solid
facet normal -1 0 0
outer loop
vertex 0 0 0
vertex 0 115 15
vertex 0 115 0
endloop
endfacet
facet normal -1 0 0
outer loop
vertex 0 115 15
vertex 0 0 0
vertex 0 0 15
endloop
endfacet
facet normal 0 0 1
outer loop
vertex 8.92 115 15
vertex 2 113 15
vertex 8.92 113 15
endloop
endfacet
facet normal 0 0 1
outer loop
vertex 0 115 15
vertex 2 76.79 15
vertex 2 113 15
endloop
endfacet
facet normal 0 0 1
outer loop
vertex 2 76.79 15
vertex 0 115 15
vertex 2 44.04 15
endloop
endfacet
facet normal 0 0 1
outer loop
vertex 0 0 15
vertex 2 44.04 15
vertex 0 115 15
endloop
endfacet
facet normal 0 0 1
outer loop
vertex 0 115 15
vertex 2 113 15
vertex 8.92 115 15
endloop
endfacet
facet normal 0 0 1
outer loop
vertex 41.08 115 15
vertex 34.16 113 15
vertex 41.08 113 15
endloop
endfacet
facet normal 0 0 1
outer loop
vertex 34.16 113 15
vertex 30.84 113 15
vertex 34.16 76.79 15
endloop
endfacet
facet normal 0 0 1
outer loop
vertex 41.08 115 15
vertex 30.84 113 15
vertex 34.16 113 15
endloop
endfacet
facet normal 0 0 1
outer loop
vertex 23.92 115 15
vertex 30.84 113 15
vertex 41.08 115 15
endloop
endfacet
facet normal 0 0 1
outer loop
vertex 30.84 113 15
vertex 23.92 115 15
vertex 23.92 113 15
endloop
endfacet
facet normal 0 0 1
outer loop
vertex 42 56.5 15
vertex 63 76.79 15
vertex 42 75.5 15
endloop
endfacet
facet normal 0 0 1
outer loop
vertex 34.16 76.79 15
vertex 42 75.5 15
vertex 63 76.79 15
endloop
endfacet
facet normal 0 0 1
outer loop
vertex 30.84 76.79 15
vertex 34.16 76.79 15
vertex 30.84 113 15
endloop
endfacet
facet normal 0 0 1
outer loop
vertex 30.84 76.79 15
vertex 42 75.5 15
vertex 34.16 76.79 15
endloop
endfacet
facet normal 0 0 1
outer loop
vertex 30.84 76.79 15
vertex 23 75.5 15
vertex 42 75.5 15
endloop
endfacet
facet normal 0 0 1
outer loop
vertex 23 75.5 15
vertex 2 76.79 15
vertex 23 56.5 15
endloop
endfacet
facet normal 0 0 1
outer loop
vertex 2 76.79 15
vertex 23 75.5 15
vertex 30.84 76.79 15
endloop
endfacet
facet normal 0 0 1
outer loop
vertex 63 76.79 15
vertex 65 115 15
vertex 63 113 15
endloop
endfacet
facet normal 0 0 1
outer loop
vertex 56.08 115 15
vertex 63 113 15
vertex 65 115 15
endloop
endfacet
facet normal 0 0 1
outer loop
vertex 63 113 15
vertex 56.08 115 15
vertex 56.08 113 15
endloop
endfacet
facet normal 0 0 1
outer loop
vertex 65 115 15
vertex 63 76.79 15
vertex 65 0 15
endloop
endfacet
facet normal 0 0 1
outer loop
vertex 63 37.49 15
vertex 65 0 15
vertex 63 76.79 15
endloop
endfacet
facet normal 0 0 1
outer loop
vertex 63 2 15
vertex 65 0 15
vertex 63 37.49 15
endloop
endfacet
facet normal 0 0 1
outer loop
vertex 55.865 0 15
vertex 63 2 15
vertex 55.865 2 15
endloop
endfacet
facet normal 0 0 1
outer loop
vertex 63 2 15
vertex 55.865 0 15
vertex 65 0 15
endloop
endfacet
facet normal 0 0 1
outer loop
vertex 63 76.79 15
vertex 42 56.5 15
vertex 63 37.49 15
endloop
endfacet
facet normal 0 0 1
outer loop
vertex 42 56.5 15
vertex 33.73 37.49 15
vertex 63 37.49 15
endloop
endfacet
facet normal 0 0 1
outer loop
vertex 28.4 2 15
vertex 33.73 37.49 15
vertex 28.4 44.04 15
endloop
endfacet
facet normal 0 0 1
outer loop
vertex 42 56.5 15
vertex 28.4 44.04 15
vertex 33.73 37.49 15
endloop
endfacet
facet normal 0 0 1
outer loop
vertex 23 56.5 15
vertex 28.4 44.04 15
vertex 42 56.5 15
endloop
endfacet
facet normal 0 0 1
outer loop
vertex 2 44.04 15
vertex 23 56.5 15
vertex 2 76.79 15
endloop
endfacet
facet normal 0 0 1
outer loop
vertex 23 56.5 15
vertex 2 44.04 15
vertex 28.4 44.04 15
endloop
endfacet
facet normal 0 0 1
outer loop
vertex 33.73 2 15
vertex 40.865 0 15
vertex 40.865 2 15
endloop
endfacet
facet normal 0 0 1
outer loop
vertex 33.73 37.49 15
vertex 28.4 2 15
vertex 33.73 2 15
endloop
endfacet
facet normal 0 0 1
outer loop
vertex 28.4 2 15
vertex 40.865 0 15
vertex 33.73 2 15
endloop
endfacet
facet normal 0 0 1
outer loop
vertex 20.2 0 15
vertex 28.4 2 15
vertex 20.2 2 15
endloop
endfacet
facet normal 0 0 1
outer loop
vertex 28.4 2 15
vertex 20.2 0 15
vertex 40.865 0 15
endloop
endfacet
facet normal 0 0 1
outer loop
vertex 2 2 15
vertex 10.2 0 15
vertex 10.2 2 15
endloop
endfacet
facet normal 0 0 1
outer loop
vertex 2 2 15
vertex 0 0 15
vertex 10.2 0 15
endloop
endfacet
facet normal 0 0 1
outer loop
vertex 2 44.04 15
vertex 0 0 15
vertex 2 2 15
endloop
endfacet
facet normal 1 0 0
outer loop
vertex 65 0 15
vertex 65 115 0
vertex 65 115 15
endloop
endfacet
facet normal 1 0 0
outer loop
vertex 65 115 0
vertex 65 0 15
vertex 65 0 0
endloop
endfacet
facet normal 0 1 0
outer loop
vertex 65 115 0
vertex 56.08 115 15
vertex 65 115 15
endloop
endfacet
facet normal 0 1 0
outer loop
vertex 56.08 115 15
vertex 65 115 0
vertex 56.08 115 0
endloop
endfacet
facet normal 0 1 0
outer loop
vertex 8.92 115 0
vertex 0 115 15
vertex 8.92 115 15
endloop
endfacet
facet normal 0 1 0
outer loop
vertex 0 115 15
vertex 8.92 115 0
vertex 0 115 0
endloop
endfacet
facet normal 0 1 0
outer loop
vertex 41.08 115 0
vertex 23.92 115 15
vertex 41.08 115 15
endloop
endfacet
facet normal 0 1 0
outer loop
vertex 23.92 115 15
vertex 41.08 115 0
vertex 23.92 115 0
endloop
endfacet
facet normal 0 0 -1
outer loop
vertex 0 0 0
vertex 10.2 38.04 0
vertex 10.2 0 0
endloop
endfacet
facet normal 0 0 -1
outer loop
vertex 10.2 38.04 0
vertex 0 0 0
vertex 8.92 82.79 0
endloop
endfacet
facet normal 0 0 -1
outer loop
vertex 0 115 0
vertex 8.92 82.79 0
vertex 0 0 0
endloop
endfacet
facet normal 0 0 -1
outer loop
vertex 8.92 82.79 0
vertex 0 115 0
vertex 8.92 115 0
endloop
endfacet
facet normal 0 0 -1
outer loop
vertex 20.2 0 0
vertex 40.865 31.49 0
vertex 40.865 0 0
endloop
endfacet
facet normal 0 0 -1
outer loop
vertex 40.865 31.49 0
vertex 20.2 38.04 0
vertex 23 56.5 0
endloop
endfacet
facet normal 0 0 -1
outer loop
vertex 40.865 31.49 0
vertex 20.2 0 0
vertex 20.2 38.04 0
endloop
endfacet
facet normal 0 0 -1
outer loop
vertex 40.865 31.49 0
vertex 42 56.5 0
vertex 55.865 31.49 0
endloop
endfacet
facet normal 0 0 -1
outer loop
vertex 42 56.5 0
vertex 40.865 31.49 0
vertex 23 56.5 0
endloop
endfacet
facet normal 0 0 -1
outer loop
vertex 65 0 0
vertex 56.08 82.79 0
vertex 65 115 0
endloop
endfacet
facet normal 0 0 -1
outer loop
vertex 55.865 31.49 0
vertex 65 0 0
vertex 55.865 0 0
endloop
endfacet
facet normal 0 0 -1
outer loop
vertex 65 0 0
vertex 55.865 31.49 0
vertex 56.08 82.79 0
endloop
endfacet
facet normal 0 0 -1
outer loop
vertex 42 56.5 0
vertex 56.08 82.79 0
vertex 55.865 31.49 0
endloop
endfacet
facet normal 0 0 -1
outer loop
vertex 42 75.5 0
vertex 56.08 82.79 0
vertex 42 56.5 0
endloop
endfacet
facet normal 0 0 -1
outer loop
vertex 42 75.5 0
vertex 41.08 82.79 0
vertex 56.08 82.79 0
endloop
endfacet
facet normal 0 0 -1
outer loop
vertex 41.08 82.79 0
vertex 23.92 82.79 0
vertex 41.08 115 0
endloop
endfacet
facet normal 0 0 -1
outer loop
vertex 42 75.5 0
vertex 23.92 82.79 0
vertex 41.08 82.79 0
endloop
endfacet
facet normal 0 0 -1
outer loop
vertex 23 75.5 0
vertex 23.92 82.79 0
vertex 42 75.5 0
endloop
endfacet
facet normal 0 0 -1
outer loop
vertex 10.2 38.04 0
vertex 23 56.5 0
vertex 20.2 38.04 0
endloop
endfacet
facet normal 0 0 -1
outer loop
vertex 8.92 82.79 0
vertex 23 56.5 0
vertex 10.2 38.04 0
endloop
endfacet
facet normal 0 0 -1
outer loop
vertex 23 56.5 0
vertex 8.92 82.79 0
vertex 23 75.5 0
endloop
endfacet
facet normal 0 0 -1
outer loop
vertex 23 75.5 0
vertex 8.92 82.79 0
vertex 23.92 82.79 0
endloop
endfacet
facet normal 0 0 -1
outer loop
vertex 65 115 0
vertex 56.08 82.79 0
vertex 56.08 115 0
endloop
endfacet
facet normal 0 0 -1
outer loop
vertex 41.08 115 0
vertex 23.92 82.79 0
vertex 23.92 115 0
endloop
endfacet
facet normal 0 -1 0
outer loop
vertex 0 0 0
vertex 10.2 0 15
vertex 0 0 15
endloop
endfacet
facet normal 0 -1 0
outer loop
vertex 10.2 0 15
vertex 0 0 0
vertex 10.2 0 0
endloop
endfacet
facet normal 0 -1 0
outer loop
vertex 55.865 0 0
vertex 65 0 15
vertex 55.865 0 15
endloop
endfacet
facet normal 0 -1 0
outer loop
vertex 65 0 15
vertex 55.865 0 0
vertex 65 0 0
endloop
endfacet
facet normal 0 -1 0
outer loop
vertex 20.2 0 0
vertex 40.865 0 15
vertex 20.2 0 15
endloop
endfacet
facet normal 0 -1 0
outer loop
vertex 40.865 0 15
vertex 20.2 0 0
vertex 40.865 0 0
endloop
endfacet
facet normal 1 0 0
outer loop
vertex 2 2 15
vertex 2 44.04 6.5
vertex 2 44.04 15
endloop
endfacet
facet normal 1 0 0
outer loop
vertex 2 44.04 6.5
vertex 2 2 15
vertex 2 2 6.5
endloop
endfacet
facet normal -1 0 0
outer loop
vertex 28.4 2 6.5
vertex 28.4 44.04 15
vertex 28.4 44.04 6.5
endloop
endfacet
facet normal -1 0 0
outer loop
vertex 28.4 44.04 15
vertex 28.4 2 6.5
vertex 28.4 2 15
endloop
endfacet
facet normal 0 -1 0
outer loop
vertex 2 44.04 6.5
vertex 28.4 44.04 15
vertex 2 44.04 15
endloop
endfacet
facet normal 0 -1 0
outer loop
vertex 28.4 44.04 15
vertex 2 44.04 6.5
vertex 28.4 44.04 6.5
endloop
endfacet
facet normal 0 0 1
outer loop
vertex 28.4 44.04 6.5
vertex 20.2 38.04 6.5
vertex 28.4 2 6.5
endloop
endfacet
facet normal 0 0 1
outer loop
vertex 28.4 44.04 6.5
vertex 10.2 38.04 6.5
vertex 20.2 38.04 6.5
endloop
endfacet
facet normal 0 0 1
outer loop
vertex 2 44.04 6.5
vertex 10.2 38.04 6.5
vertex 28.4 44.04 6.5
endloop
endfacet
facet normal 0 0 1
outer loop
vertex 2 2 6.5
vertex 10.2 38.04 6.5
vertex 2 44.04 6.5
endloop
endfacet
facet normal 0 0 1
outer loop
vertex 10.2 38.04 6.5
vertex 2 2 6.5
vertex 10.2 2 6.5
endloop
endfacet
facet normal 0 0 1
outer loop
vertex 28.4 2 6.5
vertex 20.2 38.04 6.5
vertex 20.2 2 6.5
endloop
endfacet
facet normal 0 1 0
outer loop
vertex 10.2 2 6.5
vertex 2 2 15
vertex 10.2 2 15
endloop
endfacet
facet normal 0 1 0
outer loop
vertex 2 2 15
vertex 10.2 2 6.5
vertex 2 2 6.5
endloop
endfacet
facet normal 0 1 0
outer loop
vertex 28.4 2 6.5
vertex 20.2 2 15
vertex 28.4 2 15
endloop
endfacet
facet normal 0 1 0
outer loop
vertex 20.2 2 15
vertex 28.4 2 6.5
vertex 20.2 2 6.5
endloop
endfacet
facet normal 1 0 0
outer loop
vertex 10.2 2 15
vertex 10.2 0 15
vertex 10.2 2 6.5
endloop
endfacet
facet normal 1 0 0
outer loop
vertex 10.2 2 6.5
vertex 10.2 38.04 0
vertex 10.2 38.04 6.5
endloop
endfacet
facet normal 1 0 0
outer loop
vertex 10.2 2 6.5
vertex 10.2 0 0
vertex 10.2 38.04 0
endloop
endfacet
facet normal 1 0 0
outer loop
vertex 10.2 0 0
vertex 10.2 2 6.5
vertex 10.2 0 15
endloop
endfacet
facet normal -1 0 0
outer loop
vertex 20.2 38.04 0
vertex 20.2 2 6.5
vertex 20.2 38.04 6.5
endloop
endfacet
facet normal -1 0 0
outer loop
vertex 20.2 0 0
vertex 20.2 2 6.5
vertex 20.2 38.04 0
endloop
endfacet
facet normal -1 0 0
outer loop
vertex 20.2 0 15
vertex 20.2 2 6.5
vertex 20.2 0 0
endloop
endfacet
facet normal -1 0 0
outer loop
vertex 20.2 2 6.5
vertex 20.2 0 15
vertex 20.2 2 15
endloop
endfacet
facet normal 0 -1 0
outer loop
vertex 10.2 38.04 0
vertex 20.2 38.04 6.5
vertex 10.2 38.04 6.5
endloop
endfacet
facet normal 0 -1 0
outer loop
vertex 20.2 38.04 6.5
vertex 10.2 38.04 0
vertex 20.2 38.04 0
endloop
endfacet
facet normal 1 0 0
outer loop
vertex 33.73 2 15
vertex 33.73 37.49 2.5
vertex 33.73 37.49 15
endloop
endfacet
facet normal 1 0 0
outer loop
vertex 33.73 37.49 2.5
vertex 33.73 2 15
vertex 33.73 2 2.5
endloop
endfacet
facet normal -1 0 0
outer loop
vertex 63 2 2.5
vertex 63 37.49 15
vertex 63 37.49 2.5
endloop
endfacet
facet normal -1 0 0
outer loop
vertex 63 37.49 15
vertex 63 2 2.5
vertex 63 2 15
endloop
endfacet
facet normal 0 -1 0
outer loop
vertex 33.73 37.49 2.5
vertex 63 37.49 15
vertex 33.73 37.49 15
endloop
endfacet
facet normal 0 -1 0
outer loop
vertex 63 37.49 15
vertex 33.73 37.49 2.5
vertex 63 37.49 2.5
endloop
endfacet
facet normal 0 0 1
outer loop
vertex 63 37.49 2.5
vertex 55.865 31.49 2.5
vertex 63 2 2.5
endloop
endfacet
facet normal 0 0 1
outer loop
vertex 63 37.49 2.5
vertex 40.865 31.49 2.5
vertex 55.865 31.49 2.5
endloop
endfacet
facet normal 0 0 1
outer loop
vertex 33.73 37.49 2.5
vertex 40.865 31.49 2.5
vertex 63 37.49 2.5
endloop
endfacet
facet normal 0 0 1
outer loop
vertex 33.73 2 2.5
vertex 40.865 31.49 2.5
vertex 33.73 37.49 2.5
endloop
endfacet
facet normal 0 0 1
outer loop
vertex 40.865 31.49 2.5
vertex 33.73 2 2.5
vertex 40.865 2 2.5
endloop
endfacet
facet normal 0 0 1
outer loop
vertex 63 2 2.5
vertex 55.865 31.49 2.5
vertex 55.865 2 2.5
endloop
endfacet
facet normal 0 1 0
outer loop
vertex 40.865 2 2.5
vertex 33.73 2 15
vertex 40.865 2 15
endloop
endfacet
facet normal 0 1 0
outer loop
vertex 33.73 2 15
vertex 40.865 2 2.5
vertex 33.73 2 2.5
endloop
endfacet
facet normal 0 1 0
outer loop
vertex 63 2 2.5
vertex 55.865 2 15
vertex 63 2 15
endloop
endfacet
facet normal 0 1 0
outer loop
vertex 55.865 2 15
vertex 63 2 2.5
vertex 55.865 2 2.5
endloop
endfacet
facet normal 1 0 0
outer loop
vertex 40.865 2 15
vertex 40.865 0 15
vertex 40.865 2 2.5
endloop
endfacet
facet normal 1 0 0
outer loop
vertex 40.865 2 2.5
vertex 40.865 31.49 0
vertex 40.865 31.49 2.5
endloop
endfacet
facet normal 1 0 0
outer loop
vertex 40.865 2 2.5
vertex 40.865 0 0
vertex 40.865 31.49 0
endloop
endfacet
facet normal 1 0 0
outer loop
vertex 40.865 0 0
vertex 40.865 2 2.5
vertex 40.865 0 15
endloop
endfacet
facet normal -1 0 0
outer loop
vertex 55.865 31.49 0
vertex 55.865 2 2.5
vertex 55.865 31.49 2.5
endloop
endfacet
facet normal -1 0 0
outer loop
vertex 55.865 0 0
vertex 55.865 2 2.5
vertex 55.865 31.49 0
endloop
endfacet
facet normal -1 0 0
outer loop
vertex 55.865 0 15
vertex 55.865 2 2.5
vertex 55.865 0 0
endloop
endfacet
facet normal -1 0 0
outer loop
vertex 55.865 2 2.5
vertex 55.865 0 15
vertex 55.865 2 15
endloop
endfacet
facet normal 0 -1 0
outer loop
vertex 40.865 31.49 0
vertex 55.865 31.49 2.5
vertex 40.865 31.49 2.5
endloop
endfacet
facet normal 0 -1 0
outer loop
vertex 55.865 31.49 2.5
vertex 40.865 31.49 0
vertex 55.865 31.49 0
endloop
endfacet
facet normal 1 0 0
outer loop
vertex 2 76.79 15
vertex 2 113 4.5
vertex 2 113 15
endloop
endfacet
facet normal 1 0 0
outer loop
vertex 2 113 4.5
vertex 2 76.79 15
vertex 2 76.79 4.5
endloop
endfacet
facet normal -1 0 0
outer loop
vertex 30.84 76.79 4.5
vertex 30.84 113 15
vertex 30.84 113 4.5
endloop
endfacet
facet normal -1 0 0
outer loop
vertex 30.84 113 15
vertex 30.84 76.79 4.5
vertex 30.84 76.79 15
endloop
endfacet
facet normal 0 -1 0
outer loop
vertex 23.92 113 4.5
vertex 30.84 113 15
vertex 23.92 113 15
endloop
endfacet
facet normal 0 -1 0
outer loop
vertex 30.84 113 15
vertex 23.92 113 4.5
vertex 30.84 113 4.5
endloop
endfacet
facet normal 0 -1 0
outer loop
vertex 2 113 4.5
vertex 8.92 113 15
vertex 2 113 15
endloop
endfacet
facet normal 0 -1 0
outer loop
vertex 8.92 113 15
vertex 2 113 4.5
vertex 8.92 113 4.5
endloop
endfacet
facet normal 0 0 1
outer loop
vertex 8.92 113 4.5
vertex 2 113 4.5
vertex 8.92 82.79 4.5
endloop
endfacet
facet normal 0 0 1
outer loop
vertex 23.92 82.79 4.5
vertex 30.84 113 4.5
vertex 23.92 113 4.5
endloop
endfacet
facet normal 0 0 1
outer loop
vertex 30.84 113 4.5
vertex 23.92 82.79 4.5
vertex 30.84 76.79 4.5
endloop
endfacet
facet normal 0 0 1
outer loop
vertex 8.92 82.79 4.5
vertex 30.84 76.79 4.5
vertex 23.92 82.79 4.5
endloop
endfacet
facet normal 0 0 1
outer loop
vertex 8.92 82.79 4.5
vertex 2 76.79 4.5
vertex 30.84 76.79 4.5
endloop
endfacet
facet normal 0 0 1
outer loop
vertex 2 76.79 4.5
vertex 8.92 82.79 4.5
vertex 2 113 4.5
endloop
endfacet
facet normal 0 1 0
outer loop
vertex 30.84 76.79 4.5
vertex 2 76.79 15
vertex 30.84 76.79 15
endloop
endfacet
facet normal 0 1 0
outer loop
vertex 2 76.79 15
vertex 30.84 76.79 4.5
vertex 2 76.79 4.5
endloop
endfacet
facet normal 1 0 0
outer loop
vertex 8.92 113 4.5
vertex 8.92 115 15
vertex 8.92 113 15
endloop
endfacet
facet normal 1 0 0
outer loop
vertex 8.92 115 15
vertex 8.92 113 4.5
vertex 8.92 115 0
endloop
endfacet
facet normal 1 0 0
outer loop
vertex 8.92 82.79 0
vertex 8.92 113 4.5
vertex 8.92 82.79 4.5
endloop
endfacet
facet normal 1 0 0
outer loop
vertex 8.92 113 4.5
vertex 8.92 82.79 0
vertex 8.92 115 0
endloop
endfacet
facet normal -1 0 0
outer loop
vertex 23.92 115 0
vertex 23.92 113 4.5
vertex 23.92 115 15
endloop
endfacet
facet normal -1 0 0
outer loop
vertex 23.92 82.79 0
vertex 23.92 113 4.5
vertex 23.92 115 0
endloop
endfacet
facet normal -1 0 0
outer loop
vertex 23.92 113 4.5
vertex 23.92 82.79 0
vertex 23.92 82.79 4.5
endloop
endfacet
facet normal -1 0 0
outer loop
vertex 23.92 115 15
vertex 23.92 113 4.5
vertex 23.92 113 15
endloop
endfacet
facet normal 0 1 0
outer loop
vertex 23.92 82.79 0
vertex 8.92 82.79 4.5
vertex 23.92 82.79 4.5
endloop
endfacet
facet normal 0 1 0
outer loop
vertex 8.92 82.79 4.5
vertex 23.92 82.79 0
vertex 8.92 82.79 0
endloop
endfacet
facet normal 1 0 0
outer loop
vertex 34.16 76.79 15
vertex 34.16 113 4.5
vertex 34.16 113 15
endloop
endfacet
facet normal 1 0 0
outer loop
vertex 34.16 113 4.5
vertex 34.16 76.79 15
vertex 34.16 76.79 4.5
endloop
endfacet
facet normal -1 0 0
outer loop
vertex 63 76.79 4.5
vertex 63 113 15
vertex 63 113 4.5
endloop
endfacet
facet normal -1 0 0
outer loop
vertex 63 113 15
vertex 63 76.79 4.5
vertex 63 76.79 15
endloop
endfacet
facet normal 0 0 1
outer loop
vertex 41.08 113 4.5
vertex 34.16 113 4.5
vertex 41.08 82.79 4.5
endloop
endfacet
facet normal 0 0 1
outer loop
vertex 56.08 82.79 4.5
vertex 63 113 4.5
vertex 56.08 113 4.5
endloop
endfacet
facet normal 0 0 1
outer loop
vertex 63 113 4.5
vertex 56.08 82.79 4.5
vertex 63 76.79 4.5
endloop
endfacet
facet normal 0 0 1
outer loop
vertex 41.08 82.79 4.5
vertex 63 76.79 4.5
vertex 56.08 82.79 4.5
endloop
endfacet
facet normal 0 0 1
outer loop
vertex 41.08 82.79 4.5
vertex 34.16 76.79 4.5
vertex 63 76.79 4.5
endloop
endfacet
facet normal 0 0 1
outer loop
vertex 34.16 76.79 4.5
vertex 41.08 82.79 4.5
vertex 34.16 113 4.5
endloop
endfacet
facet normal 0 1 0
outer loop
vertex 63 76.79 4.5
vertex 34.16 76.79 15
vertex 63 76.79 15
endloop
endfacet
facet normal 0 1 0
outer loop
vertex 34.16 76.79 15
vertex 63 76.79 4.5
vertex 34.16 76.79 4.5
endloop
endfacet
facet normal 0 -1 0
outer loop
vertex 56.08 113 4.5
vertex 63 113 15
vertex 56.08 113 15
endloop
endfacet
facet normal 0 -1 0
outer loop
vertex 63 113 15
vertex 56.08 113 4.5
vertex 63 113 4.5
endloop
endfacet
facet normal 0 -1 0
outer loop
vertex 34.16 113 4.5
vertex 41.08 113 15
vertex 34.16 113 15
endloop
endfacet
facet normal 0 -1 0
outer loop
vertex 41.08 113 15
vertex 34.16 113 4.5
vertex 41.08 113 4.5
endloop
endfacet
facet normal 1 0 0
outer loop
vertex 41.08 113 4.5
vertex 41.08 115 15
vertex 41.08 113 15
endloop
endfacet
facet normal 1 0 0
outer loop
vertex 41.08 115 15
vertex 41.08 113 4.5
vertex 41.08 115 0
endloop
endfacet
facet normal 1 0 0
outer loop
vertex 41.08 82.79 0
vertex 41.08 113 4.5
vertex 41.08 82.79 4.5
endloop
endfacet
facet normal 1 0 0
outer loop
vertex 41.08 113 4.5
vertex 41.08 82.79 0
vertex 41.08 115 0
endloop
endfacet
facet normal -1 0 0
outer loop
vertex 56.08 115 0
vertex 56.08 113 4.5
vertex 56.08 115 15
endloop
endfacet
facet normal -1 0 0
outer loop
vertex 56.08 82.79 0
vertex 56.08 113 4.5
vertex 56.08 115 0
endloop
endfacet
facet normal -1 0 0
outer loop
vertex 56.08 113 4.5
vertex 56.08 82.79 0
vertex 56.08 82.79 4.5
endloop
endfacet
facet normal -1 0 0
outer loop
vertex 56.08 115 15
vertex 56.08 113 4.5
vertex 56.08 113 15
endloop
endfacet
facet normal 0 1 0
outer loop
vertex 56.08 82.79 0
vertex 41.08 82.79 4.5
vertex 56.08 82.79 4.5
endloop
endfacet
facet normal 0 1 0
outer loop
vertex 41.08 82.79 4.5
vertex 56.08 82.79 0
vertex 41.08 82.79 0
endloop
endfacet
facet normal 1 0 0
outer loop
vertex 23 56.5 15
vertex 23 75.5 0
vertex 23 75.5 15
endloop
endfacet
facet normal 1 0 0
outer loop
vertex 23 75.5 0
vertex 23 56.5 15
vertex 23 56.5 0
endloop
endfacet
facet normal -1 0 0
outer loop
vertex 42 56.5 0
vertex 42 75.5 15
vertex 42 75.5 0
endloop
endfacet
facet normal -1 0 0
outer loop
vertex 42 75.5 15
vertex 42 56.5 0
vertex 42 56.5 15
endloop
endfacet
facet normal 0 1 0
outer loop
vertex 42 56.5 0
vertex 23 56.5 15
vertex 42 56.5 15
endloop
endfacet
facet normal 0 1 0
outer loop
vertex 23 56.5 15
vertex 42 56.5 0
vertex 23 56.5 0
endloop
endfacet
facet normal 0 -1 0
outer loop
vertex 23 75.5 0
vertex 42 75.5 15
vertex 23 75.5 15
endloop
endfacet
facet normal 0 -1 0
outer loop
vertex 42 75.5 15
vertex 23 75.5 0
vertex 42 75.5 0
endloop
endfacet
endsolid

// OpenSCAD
length = 65;
width = 115;
height = 15;

//Based on magnet size:
magnetBaseInnerDiameter = 19;
magnetHeight = 4.0;

//harrower x4, 					41.04 x 25.4, base 18.7
//artillery x 6, 					34.49 x 28.27, base full ish
//slime (2 stacks of 5) 			35.21 x 27.84, full (ish) base

//single token 2.0
magnetOffset = 52.5;

largeToken1Width = 41.04 + 1;
largeToken1Length = 25.4 + 1;
largeToken1Height = 8 + .5;
largeToken1SquareLipWidthRemainder = largeToken1Length - 10;
largeToken1SquareLipLengthRemainder = 4;

largeToken2Width = 34.49 + 1;
largeToken2Length = 28.27 + 1;
largeToken2Height = 12 + .5;
largeToken2SquareLipWidthRemainder = largeToken2Length - 15;
largeToken2SquareLipLengthRemainder = 4;

smallToken1Width = 35.21 + 1;
smallToken1Length = 27.84 + 1;
smallToken1Height = 10 + .5;
smallToken1SquareLipWidthRemainder = smallToken1Length - 15;
smallToken1SquareLipLengthRemainder = 4;

smallToken2Width = 35.21 + 1;
smallToken2Length = 27.84 + 1;
smallToken2Height = 10 + .5;
smallToken2SquareLipWidthRemainder = smallToken2Length - 15;
smallToken2SquareLipLengthRemainder = 4;

spaceBetweenCircles = 2;
wallThickness = spaceBetweenCircles;



difference(){
    cube([length, width, height]);


//----------------------------------
translate(
        [
            wallThickness,
            wallThickness,
            height - largeToken1Height
        ])
        cube([largeToken1Length,largeToken1Width, largeToken1Height]);
    translate([
        wallThickness + largeToken1SquareLipWidthRemainder/2,
        0,
        0])
        cube([
            largeToken1Length - largeToken1SquareLipWidthRemainder,
            largeToken1Width - largeToken1SquareLipLengthRemainder,
            height]);
    
translate(
        [
            length - (wallThickness + largeToken2Length),
            wallThickness,
            height - largeToken2Height
        ])
        cube([largeToken2Length,largeToken2Width, largeToken2Height]);
    translate([
        length - (wallThickness + (largeToken2Length - largeToken2SquareLipWidthRemainder) + largeToken2SquareLipWidthRemainder/2),
        0,
        0])
        cube([
            largeToken2Length - largeToken2SquareLipWidthRemainder,
            largeToken2Width - largeToken2SquareLipLengthRemainder,
            height]);

            
//---------------------------------------------------------------------
    
    translate(
        [
            wallThickness,
            width - (wallThickness + smallToken1Width),
            height - smallToken1Height
        ])
        cube([smallToken1Length,smallToken1Width, smallToken1Height]);
    translate([
        wallThickness + smallToken1SquareLipWidthRemainder/2,
        width - (smallToken1Width - smallToken1SquareLipLengthRemainder),
        0])
        cube([
            smallToken1Length - smallToken1SquareLipWidthRemainder,
            smallToken1Width - smallToken1SquareLipLengthRemainder,
            height]);

    translate(
        [
            length - (wallThickness + smallToken2Length),
            width - (wallThickness + smallToken2Width),
            height - smallToken2Height
        ])
        cube([smallToken2Length,smallToken2Width, smallToken2Height]);
    translate([
        length - (wallThickness + smallToken2Length) + smallToken2SquareLipWidthRemainder/2,
        width - (smallToken2Width - smallToken2SquareLipLengthRemainder),
        0])
        cube([
            smallToken2Length - smallToken2SquareLipWidthRemainder,
            smallToken2Width - smallToken2SquareLipLengthRemainder,
            height]);       

//----------------------------------------
   
    translate([length/2 - magnetBaseInnerDiameter/2, magnetOffset + wallThickness * 2, 0])
        cube([magnetBaseInnerDiameter, magnetBaseInnerDiameter, height]);
        

}
